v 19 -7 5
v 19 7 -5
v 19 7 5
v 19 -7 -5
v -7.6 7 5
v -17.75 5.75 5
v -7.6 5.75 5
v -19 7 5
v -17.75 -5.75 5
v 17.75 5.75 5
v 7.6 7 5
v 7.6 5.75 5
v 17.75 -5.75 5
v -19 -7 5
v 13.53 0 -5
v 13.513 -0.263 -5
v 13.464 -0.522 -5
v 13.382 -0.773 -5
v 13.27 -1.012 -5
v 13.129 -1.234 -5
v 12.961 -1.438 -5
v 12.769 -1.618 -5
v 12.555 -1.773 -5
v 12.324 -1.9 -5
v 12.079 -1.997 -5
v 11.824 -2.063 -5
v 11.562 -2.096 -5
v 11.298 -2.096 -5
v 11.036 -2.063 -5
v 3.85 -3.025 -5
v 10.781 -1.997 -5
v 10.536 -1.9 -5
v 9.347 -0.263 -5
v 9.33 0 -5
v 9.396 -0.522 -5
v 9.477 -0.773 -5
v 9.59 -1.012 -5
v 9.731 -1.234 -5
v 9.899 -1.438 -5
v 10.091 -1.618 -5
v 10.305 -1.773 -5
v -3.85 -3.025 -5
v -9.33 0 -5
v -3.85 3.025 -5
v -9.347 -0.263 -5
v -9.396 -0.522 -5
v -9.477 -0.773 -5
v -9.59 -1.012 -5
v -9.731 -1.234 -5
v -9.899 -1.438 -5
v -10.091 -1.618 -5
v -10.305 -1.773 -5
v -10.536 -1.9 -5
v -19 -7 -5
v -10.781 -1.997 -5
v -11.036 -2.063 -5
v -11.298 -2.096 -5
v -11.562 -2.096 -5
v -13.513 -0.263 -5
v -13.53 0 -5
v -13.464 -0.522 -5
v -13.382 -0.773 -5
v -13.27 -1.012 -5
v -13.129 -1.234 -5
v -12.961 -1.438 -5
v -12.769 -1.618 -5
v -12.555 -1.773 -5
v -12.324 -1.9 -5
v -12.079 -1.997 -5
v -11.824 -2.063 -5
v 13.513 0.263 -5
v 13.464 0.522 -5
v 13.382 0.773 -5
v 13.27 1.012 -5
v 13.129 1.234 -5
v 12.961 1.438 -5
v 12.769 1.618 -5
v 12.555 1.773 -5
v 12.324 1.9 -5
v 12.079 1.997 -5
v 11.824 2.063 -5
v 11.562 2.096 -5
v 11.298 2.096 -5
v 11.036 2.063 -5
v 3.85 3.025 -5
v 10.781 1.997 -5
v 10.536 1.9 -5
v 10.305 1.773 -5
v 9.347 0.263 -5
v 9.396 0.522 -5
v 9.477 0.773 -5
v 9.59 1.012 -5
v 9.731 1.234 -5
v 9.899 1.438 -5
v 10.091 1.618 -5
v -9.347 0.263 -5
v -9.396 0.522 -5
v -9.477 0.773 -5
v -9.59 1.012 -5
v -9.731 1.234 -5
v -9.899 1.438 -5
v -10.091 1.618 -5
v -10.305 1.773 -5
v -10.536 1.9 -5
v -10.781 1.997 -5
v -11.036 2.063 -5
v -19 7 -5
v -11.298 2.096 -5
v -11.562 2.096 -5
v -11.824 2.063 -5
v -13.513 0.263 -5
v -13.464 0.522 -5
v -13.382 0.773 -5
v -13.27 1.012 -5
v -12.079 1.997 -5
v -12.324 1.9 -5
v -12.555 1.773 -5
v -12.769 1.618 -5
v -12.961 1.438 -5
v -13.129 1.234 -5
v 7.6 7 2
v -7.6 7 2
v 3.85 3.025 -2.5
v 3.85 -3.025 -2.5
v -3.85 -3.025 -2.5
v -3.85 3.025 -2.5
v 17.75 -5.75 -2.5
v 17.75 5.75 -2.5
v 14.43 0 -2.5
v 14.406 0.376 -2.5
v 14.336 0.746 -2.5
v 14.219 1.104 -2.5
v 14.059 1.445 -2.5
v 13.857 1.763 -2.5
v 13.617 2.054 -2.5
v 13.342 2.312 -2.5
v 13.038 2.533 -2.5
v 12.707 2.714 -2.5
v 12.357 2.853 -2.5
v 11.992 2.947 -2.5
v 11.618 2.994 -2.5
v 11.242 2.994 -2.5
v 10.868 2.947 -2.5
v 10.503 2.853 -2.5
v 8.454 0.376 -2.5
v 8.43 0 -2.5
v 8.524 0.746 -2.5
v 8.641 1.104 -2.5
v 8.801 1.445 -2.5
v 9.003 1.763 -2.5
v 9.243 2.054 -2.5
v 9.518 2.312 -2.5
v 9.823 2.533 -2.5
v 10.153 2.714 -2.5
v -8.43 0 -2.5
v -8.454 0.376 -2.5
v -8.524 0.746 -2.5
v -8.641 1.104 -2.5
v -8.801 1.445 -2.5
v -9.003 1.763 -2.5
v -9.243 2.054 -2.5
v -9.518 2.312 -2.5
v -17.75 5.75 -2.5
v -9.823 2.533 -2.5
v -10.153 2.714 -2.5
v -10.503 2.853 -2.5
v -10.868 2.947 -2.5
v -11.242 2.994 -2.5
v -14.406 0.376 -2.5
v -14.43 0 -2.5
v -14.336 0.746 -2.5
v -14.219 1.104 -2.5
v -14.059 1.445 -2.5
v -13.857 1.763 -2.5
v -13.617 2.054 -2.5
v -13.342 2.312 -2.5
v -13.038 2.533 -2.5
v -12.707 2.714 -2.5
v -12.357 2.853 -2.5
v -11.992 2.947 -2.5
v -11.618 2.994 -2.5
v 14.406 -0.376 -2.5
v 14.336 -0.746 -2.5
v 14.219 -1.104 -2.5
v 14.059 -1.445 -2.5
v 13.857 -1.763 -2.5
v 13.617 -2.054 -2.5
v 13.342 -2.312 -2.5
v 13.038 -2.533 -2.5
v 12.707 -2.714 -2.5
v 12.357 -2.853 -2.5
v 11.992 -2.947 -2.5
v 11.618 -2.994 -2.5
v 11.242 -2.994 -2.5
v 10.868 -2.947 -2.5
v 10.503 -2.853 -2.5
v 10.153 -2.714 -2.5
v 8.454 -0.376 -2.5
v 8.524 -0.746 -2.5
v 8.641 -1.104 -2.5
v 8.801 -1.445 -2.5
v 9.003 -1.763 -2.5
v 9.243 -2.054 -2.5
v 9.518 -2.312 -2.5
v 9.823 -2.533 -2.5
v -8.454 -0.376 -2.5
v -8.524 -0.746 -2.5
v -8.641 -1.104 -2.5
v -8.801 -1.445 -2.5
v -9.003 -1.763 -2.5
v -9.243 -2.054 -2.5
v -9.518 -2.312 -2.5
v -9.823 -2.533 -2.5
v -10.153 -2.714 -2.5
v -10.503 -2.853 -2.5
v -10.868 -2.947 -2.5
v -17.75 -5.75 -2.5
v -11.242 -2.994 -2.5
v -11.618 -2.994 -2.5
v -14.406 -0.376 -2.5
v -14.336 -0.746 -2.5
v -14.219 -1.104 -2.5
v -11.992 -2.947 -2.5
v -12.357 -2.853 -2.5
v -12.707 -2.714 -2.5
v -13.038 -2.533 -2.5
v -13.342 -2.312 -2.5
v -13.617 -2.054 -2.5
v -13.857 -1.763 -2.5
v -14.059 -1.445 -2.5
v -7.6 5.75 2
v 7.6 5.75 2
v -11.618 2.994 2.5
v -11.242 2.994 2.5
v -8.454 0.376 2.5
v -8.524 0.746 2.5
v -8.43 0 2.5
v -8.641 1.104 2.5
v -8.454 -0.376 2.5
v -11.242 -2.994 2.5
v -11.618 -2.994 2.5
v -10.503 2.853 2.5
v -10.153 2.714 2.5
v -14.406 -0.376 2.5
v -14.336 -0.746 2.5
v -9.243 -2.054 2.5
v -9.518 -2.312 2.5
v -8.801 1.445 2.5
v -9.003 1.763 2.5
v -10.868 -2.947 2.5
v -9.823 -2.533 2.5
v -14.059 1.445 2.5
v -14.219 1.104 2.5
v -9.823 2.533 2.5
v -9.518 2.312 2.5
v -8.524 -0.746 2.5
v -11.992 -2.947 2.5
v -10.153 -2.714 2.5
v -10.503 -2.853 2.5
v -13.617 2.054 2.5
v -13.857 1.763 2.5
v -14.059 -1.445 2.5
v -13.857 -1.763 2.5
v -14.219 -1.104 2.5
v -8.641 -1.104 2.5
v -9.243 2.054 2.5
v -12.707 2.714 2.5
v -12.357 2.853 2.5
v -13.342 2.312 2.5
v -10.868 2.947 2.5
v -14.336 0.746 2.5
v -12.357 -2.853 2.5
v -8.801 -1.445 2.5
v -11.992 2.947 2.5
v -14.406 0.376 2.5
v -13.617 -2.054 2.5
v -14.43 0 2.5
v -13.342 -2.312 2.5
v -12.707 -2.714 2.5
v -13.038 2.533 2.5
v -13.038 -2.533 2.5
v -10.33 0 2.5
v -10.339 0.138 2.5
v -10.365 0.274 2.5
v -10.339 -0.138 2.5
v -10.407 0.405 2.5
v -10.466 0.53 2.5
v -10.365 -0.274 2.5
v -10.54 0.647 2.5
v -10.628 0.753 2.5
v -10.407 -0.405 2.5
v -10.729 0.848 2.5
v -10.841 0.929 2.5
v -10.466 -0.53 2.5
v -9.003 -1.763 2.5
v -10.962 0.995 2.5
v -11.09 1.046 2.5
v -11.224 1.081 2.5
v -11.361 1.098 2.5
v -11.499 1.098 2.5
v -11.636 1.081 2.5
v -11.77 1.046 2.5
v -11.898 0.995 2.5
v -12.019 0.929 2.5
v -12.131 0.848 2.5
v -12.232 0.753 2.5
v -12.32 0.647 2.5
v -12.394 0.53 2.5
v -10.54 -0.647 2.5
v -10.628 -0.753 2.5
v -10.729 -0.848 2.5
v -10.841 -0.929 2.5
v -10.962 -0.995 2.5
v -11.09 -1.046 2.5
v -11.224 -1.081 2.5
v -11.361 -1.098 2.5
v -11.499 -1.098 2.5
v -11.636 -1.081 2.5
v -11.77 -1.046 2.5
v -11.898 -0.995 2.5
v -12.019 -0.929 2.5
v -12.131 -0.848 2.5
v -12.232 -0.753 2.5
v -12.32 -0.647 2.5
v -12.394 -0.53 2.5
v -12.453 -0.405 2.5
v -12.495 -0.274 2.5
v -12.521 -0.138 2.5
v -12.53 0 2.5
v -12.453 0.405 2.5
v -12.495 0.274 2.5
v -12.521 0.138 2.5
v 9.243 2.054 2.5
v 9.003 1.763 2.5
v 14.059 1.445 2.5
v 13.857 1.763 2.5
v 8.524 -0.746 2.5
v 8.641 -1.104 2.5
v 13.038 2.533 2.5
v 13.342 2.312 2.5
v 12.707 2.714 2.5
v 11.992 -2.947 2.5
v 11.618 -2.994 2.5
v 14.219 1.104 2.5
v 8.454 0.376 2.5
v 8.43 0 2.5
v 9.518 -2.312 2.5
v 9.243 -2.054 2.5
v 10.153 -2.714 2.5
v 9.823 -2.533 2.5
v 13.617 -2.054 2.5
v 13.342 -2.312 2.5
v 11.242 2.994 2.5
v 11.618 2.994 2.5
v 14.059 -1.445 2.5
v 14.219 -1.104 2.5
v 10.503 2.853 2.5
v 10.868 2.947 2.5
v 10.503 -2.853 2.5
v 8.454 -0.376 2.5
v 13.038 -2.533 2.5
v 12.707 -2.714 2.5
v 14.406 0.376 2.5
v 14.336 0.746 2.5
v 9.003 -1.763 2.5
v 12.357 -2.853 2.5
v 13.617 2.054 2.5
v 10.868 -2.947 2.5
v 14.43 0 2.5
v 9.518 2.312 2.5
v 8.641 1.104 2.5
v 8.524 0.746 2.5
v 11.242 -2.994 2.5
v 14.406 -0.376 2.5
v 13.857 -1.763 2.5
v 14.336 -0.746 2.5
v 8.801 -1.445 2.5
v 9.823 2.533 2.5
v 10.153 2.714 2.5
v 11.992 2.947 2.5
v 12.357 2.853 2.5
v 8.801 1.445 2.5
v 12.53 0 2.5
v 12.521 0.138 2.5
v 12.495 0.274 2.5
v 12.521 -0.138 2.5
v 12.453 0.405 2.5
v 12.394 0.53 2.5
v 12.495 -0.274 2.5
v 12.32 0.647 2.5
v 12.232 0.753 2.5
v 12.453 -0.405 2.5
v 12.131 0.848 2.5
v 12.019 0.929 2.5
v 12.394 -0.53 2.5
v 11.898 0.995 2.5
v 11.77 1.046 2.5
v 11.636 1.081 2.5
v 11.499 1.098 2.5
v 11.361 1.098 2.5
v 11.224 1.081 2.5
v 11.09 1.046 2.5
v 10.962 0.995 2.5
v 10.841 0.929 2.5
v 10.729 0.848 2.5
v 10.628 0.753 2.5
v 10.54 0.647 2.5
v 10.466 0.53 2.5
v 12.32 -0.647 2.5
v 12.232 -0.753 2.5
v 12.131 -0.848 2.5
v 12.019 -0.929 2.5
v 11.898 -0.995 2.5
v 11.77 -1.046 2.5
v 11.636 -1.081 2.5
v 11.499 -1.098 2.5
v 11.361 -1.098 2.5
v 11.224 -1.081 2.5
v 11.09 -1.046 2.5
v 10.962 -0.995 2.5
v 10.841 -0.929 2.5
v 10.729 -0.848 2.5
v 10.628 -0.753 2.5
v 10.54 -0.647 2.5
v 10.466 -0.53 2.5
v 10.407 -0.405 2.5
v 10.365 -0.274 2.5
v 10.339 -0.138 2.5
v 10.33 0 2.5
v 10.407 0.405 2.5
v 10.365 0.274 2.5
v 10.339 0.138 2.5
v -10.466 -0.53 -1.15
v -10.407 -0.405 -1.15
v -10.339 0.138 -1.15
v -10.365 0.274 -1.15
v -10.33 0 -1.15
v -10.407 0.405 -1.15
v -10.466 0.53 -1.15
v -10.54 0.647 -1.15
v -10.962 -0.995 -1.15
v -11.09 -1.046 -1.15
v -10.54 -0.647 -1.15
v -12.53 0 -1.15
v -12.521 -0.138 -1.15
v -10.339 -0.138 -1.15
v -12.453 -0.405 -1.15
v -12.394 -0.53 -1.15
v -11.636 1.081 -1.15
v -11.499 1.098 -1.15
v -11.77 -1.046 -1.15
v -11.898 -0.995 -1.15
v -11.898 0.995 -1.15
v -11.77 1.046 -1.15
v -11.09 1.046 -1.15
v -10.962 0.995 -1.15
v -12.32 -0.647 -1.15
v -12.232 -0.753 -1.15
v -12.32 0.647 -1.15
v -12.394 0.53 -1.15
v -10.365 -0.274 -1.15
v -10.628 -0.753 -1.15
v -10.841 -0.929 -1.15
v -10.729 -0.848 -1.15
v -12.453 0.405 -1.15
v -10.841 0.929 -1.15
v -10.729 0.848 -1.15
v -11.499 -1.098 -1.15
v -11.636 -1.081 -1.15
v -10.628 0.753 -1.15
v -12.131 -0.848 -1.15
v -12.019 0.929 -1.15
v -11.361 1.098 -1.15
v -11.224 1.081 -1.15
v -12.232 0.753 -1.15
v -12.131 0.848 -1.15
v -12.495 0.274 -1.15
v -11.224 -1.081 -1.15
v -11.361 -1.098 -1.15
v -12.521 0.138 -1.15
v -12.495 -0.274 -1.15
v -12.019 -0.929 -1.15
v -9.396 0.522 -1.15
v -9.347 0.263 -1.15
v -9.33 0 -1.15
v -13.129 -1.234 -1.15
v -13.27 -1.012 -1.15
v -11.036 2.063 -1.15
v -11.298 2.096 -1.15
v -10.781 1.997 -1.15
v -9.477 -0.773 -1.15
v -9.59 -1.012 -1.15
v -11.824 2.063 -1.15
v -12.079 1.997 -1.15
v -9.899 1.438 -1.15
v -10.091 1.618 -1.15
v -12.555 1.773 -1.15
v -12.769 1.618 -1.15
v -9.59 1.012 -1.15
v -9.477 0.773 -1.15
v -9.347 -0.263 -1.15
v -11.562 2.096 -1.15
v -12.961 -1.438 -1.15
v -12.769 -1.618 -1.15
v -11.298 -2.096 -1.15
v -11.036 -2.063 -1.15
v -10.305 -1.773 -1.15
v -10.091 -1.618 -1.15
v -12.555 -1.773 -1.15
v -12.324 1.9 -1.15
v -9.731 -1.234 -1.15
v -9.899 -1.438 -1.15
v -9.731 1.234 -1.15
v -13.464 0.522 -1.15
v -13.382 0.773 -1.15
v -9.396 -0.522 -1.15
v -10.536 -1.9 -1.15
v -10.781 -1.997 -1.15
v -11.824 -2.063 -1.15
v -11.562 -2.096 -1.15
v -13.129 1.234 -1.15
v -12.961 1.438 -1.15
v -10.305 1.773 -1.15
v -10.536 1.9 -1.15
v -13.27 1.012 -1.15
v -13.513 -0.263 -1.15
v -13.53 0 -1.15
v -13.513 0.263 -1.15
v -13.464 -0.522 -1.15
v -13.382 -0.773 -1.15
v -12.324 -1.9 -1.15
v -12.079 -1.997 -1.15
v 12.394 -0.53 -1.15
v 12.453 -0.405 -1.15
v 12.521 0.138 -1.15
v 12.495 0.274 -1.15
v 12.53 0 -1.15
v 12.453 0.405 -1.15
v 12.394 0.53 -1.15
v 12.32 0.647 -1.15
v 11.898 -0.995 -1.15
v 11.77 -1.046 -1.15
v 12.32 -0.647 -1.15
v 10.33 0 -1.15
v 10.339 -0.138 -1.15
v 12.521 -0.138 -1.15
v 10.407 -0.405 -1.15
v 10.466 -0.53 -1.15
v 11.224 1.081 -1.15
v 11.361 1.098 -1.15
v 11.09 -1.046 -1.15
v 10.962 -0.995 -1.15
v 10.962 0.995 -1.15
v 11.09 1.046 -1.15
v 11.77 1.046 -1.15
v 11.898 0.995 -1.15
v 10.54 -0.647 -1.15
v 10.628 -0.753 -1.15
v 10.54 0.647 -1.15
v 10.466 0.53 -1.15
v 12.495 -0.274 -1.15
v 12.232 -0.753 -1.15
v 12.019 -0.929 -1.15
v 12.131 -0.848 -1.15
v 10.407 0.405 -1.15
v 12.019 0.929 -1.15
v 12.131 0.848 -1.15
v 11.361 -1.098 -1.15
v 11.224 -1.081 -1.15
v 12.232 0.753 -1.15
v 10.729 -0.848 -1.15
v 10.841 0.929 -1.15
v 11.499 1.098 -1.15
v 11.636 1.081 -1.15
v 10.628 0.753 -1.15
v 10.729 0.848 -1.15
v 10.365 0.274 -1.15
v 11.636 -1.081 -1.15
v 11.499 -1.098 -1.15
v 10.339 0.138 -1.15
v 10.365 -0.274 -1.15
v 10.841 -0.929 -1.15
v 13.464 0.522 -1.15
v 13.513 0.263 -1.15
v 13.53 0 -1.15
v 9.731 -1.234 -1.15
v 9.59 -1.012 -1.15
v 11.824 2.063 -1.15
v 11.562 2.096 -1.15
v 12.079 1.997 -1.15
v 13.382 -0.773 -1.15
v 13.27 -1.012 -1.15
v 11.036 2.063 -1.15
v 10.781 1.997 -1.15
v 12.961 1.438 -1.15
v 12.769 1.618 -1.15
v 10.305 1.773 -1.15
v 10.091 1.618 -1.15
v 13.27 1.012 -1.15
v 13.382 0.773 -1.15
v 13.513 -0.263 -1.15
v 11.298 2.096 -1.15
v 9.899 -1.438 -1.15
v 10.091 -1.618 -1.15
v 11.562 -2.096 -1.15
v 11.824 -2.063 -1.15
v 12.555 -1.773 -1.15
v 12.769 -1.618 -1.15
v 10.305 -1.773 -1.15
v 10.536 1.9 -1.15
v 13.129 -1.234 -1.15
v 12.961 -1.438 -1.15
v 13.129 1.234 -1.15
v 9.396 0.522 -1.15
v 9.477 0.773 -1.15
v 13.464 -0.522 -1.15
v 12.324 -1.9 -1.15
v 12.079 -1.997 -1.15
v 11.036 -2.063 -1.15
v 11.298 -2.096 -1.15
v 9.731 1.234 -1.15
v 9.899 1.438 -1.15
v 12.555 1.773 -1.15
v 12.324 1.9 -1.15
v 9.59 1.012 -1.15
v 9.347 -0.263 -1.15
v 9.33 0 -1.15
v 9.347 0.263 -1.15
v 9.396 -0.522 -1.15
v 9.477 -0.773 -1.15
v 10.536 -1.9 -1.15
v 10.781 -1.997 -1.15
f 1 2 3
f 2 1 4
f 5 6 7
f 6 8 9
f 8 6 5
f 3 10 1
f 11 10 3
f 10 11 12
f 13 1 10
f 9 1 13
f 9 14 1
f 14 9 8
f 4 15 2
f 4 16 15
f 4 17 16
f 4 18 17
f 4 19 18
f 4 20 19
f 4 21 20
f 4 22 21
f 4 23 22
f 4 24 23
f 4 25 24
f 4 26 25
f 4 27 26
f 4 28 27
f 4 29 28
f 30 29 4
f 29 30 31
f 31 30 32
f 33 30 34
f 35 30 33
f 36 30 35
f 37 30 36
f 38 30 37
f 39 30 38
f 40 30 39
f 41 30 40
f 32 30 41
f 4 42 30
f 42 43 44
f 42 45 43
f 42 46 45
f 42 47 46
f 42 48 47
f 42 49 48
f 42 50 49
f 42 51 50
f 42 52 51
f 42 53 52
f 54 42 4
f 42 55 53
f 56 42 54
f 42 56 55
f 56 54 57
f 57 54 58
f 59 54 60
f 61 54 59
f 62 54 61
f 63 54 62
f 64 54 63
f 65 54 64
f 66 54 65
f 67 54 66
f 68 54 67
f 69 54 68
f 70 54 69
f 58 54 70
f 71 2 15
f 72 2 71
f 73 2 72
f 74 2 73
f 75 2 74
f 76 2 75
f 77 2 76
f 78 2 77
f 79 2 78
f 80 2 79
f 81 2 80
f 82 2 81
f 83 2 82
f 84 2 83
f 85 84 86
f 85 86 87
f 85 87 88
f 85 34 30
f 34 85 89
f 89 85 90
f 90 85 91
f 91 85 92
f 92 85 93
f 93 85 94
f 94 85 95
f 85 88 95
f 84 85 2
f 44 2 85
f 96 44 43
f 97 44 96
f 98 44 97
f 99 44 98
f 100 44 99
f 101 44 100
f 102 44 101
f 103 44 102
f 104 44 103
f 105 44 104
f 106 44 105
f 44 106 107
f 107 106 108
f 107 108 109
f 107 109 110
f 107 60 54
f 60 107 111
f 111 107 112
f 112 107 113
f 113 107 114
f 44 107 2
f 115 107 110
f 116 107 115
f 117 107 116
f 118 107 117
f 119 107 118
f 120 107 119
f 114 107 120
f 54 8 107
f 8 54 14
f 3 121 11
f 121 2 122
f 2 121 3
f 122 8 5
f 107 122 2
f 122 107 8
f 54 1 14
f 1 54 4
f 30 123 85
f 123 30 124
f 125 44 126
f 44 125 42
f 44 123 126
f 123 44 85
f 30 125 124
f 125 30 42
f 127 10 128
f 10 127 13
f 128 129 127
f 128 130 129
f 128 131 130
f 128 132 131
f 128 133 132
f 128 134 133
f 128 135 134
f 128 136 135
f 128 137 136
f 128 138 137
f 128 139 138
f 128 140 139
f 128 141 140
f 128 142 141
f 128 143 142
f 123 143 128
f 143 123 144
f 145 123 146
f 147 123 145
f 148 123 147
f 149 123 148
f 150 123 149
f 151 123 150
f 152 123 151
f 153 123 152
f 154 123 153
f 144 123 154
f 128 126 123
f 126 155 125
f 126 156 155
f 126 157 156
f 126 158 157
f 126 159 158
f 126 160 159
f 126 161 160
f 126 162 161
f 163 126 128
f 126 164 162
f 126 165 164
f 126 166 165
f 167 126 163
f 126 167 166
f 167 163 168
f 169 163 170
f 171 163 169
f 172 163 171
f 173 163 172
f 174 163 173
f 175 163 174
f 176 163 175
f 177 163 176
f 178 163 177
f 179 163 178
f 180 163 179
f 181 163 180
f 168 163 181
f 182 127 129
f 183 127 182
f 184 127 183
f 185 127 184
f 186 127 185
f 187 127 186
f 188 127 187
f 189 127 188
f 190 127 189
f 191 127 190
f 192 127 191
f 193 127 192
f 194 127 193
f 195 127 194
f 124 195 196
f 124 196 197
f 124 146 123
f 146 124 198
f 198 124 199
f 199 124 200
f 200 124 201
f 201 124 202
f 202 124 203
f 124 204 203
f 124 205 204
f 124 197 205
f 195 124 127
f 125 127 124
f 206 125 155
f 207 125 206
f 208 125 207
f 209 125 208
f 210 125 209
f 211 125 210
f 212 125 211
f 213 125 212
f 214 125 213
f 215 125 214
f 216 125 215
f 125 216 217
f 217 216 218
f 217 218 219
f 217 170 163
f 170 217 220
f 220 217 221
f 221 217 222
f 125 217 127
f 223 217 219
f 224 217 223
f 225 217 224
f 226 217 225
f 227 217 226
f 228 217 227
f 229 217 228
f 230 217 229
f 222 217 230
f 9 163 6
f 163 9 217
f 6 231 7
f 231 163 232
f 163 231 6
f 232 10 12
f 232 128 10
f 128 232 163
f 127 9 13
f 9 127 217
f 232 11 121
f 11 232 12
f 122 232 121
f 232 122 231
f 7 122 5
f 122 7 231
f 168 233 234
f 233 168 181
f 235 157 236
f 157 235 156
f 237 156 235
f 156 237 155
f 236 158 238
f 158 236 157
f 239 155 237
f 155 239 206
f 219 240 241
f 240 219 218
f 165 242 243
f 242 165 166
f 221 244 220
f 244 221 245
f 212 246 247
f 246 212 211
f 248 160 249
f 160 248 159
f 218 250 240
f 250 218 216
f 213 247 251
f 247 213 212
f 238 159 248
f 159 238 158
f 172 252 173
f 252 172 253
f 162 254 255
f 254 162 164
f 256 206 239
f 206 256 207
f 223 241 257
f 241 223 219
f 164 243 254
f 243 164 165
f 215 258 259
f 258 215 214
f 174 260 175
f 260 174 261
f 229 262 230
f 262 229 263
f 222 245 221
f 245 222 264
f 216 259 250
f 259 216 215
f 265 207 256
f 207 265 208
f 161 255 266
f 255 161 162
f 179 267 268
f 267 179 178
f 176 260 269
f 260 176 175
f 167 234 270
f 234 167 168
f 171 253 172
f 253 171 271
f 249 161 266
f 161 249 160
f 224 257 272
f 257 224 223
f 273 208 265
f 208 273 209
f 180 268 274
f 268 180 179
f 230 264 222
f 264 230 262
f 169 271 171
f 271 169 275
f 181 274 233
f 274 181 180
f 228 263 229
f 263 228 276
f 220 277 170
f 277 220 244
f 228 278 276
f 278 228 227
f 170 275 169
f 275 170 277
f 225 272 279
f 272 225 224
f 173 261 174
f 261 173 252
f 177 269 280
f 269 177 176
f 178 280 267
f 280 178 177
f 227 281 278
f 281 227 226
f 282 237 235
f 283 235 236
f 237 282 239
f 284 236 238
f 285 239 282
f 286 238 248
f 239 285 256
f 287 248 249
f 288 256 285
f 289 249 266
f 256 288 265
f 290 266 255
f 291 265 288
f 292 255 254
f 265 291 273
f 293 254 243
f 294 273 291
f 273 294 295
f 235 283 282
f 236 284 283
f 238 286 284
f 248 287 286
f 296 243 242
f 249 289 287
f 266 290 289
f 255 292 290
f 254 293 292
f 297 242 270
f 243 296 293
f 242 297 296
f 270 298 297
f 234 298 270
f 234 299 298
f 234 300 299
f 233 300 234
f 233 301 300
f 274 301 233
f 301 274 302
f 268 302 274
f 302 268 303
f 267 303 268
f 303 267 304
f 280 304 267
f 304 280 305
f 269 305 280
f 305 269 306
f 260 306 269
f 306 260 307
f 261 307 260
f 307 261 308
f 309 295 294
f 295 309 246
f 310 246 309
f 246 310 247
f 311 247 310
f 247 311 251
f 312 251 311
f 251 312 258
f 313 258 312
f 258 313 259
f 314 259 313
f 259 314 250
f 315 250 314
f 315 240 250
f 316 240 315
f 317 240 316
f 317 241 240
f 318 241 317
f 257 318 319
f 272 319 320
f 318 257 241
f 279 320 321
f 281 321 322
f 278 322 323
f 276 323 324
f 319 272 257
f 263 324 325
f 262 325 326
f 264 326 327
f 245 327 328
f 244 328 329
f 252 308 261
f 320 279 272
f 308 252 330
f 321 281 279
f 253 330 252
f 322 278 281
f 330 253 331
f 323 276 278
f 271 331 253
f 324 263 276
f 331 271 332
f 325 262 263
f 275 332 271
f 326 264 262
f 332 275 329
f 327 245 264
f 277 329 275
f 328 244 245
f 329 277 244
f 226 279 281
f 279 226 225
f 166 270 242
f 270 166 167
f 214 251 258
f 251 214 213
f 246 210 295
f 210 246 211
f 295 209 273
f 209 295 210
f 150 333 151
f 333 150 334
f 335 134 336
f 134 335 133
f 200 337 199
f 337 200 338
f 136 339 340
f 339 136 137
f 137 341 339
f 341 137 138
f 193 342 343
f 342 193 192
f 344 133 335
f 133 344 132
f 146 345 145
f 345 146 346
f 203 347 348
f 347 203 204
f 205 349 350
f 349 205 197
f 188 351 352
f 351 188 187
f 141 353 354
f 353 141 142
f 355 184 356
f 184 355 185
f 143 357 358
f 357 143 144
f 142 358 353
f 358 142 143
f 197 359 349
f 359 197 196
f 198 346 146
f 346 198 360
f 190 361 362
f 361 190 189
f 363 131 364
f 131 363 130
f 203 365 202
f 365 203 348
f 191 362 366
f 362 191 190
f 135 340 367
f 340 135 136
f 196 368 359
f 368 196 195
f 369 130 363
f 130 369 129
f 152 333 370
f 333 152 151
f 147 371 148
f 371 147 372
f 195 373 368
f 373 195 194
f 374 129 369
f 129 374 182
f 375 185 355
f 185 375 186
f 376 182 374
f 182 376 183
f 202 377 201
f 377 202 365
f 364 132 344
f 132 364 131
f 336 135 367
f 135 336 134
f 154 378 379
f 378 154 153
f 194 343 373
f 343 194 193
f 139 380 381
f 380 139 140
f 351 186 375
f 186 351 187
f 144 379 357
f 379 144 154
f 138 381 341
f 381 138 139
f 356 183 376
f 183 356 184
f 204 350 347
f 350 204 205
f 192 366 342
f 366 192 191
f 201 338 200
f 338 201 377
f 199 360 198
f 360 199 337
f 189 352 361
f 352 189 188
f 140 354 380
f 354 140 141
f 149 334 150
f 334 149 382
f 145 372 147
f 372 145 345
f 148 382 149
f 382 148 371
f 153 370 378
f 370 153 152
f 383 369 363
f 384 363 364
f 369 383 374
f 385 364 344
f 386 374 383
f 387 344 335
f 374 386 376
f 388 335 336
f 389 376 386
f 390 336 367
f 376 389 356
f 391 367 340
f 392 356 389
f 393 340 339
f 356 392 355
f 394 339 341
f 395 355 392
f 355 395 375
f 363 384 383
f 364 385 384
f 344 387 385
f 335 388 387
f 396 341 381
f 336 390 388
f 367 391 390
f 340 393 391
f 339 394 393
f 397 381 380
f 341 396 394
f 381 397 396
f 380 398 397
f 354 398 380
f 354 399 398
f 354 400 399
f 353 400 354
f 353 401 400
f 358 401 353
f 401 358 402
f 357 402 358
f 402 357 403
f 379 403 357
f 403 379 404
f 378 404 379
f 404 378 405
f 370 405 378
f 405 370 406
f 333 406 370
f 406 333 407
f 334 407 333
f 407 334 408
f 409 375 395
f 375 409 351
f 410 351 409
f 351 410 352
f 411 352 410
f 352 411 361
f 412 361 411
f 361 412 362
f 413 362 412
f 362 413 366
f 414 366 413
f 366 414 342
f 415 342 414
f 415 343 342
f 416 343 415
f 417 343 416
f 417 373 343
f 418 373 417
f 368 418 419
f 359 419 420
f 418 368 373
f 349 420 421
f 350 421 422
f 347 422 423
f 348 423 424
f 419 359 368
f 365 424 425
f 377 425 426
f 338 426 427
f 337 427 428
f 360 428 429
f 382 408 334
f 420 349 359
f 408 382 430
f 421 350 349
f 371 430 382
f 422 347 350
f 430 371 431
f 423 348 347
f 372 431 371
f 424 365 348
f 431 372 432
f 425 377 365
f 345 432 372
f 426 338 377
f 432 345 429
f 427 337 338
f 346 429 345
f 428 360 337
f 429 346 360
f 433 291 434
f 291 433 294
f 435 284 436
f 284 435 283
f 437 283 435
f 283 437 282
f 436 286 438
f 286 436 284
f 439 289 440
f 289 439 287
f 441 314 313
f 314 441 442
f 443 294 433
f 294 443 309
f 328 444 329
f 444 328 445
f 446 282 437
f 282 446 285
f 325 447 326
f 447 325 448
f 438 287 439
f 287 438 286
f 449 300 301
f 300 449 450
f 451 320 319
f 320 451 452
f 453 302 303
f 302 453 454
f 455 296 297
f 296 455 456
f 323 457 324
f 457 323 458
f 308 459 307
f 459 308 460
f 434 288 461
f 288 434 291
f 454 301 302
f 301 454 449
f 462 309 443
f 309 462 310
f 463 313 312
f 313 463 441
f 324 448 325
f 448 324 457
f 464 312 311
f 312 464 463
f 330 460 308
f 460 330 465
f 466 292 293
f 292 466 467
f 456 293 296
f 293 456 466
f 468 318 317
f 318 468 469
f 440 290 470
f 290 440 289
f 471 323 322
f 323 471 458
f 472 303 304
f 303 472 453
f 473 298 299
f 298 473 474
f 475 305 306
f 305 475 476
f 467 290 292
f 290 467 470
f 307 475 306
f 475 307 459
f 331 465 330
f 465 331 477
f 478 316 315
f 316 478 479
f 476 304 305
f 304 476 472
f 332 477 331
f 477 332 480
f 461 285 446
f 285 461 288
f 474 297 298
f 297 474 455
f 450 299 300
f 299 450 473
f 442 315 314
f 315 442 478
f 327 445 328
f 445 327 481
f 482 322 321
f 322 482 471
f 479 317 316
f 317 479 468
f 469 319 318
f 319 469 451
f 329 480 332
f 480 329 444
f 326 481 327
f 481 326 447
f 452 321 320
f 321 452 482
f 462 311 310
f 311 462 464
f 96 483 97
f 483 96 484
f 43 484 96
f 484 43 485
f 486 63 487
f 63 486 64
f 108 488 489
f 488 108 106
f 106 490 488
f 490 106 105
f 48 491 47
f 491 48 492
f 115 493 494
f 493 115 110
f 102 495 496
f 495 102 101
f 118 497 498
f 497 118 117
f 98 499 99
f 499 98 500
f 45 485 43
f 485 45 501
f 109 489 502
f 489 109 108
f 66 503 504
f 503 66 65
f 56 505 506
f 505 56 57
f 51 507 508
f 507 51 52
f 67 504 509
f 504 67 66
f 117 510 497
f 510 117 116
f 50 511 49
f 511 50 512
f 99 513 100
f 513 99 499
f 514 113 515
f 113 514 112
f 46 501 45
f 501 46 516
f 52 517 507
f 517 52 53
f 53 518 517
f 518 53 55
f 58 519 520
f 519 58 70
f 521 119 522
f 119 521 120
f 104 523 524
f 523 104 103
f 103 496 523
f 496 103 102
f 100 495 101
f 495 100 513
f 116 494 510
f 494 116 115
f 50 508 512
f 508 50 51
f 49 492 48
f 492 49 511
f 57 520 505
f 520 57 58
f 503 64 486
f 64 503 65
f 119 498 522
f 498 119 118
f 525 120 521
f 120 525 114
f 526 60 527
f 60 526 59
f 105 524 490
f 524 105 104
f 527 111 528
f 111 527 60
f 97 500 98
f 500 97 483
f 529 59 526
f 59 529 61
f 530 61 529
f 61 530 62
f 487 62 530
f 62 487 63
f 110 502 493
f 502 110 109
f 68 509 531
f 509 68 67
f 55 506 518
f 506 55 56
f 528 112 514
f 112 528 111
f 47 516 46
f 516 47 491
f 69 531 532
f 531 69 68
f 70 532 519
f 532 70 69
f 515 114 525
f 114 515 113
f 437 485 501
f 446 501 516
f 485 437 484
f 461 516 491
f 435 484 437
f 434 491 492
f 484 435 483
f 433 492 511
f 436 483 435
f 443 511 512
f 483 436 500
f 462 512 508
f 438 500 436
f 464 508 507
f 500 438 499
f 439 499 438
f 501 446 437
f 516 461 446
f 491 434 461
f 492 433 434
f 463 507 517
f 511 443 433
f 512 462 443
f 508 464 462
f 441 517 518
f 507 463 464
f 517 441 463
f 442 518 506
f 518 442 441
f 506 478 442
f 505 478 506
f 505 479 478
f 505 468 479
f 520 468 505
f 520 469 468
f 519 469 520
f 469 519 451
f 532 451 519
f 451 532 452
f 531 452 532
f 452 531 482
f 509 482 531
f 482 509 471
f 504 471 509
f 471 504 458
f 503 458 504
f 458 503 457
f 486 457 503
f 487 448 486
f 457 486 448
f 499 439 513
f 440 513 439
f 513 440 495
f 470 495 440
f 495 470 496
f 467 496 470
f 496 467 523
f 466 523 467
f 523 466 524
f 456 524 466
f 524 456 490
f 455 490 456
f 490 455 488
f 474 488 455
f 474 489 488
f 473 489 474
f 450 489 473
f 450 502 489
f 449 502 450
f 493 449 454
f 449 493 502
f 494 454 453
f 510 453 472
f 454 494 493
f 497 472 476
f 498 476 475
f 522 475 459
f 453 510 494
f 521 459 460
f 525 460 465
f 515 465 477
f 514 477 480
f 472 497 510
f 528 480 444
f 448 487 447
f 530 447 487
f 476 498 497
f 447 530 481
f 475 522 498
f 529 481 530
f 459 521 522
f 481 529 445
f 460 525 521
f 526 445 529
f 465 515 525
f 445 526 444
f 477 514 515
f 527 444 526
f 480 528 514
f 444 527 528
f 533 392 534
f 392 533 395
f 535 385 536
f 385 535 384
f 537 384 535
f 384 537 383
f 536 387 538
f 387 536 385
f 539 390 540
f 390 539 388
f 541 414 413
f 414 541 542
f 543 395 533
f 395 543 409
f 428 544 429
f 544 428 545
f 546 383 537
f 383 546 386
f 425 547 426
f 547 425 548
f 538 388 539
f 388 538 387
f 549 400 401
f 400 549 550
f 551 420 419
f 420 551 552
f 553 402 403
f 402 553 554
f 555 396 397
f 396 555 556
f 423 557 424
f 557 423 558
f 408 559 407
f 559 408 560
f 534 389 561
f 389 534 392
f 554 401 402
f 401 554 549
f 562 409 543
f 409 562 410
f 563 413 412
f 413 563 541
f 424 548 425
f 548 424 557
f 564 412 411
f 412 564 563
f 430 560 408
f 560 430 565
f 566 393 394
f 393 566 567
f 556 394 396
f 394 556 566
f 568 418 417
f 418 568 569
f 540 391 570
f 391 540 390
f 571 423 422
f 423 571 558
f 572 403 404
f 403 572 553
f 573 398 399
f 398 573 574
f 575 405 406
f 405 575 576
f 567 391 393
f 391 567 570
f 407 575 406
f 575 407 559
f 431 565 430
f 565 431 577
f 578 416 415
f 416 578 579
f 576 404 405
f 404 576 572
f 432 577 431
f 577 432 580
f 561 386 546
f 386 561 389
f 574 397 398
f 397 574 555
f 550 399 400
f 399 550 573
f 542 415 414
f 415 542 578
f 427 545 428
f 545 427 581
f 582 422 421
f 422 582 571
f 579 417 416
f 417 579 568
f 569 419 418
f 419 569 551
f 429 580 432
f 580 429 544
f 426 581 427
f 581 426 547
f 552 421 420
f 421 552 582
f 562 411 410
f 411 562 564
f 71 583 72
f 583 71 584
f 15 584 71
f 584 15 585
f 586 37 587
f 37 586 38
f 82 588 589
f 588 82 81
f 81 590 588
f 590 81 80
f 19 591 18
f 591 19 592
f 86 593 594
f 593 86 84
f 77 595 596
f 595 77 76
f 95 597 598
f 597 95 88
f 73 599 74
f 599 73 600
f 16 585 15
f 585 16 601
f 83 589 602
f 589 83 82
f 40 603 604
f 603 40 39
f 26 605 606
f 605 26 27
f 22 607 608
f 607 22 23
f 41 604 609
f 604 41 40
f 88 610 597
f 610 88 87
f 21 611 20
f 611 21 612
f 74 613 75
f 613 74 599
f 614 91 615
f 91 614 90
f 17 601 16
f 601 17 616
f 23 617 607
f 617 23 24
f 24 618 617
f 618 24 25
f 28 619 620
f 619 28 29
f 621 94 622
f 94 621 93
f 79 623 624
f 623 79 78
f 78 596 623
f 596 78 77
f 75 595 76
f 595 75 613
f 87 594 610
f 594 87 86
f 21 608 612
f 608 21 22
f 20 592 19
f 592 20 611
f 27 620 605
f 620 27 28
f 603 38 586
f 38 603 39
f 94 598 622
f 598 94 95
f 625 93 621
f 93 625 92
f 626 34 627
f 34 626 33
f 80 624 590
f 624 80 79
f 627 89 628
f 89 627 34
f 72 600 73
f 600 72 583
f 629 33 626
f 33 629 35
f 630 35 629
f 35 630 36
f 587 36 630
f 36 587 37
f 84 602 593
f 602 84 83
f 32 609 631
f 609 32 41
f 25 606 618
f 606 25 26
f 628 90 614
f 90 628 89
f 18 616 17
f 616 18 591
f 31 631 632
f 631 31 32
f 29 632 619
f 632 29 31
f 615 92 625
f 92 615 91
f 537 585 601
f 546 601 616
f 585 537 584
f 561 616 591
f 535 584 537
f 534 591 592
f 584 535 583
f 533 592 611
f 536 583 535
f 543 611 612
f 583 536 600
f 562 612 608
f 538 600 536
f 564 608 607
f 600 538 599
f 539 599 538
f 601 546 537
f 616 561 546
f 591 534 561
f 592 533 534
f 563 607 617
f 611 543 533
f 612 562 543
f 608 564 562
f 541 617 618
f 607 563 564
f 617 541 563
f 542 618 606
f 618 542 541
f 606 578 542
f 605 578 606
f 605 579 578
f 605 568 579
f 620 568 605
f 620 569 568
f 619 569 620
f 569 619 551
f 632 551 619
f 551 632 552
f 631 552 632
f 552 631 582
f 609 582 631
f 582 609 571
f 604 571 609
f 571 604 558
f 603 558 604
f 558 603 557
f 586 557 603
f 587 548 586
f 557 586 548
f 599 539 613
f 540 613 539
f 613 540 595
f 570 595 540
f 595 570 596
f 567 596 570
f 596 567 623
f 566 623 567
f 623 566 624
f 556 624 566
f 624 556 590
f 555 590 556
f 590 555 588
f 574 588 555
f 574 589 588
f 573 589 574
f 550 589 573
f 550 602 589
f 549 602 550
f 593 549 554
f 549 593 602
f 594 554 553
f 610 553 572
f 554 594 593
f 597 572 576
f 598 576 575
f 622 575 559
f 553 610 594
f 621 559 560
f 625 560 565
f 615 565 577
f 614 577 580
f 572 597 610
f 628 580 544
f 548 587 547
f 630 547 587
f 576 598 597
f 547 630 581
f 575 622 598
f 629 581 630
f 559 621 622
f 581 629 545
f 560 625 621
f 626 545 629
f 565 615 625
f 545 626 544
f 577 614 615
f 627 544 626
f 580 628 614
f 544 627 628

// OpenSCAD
// Bohrhilfe
hub_hole_diameter = 2;
hub_spacer_height = 2;
hub_raster =  2.54;
hub_y = 5.75+0.2;
hub_x = 7.4+0.2;
dist = 4.5*hub_raster;
module screwhole_mX(d, height, fact){
   headlength = 0.6*d/2+0.1;
   translate([0, 0, headlength/2]){
        translate([0, 0, height/2])cylinder(h=height, r=d/2+0.1, center=true, $fn=50);
        cylinder(h=10*fact*headlength, r=d+0.1, center=true, $fn=50);
   }
}

module nuthole_mX(d){
   s = (d==2) ? 4: (d==2.5)? 5: (d==3) ? 5.5: 0.0;
   if (s==0){
     echo ("Nut size not supported");
   }
   e = s/sin(60.0);
   height = 40;
   headlyength = 0.6*d/2+0.1;
   translate([0, 0, -5*headlength]){
     translate([0, 0, height/2])cylinder(h=height, r=d/2+0.1, center=true, $fn=50);
     translate([0, 0, -1.5])cylinder(h=10*headlength, d=e+0.1, center=true, $fn=6);
   }
}

module connector_hub(mode){
  translate([-dist, 0, -5])if (mode==0) screwhole_mX(hub_hole_diameter, 10.0, 1.0); else nuthole_mX(hub_hole_diameter);
  translate([+dist, 0, -5])if (mode==0) screwhole_mX(hub_hole_diameter, 10.0, 1.0); else nuthole_mX(hub_hole_diameter);
}

module box(dist){
     length=38;
     width=14;
     height=10;
     thickness=2.5;
     difference(){
          cube([length, width, height], center=true);
          // connector hole
          cube([hub_x+0.1, hub_y+0.1, 20], center=true);
          //carve out to create a box
          translate([0, 0, 2.5])cube([length-thickness, width-thickness, height], center=true);
          //carve out to connect the sensor
          #translate([0, hub_y, 4])cube([2*hub_x, 2*hub_y, 4], center=true);
     }
     translate([-dist, 0, 0])cylinder(h=5, r=3, center=true, $fn=50);
     translate([+dist, 0, 0])cylinder(h=5, r=3, center=true, $fn=50);
}

// drilling helpers for 2 and 3 connectors
difference(){
     box(dist);
     connector_hub(0);
}
